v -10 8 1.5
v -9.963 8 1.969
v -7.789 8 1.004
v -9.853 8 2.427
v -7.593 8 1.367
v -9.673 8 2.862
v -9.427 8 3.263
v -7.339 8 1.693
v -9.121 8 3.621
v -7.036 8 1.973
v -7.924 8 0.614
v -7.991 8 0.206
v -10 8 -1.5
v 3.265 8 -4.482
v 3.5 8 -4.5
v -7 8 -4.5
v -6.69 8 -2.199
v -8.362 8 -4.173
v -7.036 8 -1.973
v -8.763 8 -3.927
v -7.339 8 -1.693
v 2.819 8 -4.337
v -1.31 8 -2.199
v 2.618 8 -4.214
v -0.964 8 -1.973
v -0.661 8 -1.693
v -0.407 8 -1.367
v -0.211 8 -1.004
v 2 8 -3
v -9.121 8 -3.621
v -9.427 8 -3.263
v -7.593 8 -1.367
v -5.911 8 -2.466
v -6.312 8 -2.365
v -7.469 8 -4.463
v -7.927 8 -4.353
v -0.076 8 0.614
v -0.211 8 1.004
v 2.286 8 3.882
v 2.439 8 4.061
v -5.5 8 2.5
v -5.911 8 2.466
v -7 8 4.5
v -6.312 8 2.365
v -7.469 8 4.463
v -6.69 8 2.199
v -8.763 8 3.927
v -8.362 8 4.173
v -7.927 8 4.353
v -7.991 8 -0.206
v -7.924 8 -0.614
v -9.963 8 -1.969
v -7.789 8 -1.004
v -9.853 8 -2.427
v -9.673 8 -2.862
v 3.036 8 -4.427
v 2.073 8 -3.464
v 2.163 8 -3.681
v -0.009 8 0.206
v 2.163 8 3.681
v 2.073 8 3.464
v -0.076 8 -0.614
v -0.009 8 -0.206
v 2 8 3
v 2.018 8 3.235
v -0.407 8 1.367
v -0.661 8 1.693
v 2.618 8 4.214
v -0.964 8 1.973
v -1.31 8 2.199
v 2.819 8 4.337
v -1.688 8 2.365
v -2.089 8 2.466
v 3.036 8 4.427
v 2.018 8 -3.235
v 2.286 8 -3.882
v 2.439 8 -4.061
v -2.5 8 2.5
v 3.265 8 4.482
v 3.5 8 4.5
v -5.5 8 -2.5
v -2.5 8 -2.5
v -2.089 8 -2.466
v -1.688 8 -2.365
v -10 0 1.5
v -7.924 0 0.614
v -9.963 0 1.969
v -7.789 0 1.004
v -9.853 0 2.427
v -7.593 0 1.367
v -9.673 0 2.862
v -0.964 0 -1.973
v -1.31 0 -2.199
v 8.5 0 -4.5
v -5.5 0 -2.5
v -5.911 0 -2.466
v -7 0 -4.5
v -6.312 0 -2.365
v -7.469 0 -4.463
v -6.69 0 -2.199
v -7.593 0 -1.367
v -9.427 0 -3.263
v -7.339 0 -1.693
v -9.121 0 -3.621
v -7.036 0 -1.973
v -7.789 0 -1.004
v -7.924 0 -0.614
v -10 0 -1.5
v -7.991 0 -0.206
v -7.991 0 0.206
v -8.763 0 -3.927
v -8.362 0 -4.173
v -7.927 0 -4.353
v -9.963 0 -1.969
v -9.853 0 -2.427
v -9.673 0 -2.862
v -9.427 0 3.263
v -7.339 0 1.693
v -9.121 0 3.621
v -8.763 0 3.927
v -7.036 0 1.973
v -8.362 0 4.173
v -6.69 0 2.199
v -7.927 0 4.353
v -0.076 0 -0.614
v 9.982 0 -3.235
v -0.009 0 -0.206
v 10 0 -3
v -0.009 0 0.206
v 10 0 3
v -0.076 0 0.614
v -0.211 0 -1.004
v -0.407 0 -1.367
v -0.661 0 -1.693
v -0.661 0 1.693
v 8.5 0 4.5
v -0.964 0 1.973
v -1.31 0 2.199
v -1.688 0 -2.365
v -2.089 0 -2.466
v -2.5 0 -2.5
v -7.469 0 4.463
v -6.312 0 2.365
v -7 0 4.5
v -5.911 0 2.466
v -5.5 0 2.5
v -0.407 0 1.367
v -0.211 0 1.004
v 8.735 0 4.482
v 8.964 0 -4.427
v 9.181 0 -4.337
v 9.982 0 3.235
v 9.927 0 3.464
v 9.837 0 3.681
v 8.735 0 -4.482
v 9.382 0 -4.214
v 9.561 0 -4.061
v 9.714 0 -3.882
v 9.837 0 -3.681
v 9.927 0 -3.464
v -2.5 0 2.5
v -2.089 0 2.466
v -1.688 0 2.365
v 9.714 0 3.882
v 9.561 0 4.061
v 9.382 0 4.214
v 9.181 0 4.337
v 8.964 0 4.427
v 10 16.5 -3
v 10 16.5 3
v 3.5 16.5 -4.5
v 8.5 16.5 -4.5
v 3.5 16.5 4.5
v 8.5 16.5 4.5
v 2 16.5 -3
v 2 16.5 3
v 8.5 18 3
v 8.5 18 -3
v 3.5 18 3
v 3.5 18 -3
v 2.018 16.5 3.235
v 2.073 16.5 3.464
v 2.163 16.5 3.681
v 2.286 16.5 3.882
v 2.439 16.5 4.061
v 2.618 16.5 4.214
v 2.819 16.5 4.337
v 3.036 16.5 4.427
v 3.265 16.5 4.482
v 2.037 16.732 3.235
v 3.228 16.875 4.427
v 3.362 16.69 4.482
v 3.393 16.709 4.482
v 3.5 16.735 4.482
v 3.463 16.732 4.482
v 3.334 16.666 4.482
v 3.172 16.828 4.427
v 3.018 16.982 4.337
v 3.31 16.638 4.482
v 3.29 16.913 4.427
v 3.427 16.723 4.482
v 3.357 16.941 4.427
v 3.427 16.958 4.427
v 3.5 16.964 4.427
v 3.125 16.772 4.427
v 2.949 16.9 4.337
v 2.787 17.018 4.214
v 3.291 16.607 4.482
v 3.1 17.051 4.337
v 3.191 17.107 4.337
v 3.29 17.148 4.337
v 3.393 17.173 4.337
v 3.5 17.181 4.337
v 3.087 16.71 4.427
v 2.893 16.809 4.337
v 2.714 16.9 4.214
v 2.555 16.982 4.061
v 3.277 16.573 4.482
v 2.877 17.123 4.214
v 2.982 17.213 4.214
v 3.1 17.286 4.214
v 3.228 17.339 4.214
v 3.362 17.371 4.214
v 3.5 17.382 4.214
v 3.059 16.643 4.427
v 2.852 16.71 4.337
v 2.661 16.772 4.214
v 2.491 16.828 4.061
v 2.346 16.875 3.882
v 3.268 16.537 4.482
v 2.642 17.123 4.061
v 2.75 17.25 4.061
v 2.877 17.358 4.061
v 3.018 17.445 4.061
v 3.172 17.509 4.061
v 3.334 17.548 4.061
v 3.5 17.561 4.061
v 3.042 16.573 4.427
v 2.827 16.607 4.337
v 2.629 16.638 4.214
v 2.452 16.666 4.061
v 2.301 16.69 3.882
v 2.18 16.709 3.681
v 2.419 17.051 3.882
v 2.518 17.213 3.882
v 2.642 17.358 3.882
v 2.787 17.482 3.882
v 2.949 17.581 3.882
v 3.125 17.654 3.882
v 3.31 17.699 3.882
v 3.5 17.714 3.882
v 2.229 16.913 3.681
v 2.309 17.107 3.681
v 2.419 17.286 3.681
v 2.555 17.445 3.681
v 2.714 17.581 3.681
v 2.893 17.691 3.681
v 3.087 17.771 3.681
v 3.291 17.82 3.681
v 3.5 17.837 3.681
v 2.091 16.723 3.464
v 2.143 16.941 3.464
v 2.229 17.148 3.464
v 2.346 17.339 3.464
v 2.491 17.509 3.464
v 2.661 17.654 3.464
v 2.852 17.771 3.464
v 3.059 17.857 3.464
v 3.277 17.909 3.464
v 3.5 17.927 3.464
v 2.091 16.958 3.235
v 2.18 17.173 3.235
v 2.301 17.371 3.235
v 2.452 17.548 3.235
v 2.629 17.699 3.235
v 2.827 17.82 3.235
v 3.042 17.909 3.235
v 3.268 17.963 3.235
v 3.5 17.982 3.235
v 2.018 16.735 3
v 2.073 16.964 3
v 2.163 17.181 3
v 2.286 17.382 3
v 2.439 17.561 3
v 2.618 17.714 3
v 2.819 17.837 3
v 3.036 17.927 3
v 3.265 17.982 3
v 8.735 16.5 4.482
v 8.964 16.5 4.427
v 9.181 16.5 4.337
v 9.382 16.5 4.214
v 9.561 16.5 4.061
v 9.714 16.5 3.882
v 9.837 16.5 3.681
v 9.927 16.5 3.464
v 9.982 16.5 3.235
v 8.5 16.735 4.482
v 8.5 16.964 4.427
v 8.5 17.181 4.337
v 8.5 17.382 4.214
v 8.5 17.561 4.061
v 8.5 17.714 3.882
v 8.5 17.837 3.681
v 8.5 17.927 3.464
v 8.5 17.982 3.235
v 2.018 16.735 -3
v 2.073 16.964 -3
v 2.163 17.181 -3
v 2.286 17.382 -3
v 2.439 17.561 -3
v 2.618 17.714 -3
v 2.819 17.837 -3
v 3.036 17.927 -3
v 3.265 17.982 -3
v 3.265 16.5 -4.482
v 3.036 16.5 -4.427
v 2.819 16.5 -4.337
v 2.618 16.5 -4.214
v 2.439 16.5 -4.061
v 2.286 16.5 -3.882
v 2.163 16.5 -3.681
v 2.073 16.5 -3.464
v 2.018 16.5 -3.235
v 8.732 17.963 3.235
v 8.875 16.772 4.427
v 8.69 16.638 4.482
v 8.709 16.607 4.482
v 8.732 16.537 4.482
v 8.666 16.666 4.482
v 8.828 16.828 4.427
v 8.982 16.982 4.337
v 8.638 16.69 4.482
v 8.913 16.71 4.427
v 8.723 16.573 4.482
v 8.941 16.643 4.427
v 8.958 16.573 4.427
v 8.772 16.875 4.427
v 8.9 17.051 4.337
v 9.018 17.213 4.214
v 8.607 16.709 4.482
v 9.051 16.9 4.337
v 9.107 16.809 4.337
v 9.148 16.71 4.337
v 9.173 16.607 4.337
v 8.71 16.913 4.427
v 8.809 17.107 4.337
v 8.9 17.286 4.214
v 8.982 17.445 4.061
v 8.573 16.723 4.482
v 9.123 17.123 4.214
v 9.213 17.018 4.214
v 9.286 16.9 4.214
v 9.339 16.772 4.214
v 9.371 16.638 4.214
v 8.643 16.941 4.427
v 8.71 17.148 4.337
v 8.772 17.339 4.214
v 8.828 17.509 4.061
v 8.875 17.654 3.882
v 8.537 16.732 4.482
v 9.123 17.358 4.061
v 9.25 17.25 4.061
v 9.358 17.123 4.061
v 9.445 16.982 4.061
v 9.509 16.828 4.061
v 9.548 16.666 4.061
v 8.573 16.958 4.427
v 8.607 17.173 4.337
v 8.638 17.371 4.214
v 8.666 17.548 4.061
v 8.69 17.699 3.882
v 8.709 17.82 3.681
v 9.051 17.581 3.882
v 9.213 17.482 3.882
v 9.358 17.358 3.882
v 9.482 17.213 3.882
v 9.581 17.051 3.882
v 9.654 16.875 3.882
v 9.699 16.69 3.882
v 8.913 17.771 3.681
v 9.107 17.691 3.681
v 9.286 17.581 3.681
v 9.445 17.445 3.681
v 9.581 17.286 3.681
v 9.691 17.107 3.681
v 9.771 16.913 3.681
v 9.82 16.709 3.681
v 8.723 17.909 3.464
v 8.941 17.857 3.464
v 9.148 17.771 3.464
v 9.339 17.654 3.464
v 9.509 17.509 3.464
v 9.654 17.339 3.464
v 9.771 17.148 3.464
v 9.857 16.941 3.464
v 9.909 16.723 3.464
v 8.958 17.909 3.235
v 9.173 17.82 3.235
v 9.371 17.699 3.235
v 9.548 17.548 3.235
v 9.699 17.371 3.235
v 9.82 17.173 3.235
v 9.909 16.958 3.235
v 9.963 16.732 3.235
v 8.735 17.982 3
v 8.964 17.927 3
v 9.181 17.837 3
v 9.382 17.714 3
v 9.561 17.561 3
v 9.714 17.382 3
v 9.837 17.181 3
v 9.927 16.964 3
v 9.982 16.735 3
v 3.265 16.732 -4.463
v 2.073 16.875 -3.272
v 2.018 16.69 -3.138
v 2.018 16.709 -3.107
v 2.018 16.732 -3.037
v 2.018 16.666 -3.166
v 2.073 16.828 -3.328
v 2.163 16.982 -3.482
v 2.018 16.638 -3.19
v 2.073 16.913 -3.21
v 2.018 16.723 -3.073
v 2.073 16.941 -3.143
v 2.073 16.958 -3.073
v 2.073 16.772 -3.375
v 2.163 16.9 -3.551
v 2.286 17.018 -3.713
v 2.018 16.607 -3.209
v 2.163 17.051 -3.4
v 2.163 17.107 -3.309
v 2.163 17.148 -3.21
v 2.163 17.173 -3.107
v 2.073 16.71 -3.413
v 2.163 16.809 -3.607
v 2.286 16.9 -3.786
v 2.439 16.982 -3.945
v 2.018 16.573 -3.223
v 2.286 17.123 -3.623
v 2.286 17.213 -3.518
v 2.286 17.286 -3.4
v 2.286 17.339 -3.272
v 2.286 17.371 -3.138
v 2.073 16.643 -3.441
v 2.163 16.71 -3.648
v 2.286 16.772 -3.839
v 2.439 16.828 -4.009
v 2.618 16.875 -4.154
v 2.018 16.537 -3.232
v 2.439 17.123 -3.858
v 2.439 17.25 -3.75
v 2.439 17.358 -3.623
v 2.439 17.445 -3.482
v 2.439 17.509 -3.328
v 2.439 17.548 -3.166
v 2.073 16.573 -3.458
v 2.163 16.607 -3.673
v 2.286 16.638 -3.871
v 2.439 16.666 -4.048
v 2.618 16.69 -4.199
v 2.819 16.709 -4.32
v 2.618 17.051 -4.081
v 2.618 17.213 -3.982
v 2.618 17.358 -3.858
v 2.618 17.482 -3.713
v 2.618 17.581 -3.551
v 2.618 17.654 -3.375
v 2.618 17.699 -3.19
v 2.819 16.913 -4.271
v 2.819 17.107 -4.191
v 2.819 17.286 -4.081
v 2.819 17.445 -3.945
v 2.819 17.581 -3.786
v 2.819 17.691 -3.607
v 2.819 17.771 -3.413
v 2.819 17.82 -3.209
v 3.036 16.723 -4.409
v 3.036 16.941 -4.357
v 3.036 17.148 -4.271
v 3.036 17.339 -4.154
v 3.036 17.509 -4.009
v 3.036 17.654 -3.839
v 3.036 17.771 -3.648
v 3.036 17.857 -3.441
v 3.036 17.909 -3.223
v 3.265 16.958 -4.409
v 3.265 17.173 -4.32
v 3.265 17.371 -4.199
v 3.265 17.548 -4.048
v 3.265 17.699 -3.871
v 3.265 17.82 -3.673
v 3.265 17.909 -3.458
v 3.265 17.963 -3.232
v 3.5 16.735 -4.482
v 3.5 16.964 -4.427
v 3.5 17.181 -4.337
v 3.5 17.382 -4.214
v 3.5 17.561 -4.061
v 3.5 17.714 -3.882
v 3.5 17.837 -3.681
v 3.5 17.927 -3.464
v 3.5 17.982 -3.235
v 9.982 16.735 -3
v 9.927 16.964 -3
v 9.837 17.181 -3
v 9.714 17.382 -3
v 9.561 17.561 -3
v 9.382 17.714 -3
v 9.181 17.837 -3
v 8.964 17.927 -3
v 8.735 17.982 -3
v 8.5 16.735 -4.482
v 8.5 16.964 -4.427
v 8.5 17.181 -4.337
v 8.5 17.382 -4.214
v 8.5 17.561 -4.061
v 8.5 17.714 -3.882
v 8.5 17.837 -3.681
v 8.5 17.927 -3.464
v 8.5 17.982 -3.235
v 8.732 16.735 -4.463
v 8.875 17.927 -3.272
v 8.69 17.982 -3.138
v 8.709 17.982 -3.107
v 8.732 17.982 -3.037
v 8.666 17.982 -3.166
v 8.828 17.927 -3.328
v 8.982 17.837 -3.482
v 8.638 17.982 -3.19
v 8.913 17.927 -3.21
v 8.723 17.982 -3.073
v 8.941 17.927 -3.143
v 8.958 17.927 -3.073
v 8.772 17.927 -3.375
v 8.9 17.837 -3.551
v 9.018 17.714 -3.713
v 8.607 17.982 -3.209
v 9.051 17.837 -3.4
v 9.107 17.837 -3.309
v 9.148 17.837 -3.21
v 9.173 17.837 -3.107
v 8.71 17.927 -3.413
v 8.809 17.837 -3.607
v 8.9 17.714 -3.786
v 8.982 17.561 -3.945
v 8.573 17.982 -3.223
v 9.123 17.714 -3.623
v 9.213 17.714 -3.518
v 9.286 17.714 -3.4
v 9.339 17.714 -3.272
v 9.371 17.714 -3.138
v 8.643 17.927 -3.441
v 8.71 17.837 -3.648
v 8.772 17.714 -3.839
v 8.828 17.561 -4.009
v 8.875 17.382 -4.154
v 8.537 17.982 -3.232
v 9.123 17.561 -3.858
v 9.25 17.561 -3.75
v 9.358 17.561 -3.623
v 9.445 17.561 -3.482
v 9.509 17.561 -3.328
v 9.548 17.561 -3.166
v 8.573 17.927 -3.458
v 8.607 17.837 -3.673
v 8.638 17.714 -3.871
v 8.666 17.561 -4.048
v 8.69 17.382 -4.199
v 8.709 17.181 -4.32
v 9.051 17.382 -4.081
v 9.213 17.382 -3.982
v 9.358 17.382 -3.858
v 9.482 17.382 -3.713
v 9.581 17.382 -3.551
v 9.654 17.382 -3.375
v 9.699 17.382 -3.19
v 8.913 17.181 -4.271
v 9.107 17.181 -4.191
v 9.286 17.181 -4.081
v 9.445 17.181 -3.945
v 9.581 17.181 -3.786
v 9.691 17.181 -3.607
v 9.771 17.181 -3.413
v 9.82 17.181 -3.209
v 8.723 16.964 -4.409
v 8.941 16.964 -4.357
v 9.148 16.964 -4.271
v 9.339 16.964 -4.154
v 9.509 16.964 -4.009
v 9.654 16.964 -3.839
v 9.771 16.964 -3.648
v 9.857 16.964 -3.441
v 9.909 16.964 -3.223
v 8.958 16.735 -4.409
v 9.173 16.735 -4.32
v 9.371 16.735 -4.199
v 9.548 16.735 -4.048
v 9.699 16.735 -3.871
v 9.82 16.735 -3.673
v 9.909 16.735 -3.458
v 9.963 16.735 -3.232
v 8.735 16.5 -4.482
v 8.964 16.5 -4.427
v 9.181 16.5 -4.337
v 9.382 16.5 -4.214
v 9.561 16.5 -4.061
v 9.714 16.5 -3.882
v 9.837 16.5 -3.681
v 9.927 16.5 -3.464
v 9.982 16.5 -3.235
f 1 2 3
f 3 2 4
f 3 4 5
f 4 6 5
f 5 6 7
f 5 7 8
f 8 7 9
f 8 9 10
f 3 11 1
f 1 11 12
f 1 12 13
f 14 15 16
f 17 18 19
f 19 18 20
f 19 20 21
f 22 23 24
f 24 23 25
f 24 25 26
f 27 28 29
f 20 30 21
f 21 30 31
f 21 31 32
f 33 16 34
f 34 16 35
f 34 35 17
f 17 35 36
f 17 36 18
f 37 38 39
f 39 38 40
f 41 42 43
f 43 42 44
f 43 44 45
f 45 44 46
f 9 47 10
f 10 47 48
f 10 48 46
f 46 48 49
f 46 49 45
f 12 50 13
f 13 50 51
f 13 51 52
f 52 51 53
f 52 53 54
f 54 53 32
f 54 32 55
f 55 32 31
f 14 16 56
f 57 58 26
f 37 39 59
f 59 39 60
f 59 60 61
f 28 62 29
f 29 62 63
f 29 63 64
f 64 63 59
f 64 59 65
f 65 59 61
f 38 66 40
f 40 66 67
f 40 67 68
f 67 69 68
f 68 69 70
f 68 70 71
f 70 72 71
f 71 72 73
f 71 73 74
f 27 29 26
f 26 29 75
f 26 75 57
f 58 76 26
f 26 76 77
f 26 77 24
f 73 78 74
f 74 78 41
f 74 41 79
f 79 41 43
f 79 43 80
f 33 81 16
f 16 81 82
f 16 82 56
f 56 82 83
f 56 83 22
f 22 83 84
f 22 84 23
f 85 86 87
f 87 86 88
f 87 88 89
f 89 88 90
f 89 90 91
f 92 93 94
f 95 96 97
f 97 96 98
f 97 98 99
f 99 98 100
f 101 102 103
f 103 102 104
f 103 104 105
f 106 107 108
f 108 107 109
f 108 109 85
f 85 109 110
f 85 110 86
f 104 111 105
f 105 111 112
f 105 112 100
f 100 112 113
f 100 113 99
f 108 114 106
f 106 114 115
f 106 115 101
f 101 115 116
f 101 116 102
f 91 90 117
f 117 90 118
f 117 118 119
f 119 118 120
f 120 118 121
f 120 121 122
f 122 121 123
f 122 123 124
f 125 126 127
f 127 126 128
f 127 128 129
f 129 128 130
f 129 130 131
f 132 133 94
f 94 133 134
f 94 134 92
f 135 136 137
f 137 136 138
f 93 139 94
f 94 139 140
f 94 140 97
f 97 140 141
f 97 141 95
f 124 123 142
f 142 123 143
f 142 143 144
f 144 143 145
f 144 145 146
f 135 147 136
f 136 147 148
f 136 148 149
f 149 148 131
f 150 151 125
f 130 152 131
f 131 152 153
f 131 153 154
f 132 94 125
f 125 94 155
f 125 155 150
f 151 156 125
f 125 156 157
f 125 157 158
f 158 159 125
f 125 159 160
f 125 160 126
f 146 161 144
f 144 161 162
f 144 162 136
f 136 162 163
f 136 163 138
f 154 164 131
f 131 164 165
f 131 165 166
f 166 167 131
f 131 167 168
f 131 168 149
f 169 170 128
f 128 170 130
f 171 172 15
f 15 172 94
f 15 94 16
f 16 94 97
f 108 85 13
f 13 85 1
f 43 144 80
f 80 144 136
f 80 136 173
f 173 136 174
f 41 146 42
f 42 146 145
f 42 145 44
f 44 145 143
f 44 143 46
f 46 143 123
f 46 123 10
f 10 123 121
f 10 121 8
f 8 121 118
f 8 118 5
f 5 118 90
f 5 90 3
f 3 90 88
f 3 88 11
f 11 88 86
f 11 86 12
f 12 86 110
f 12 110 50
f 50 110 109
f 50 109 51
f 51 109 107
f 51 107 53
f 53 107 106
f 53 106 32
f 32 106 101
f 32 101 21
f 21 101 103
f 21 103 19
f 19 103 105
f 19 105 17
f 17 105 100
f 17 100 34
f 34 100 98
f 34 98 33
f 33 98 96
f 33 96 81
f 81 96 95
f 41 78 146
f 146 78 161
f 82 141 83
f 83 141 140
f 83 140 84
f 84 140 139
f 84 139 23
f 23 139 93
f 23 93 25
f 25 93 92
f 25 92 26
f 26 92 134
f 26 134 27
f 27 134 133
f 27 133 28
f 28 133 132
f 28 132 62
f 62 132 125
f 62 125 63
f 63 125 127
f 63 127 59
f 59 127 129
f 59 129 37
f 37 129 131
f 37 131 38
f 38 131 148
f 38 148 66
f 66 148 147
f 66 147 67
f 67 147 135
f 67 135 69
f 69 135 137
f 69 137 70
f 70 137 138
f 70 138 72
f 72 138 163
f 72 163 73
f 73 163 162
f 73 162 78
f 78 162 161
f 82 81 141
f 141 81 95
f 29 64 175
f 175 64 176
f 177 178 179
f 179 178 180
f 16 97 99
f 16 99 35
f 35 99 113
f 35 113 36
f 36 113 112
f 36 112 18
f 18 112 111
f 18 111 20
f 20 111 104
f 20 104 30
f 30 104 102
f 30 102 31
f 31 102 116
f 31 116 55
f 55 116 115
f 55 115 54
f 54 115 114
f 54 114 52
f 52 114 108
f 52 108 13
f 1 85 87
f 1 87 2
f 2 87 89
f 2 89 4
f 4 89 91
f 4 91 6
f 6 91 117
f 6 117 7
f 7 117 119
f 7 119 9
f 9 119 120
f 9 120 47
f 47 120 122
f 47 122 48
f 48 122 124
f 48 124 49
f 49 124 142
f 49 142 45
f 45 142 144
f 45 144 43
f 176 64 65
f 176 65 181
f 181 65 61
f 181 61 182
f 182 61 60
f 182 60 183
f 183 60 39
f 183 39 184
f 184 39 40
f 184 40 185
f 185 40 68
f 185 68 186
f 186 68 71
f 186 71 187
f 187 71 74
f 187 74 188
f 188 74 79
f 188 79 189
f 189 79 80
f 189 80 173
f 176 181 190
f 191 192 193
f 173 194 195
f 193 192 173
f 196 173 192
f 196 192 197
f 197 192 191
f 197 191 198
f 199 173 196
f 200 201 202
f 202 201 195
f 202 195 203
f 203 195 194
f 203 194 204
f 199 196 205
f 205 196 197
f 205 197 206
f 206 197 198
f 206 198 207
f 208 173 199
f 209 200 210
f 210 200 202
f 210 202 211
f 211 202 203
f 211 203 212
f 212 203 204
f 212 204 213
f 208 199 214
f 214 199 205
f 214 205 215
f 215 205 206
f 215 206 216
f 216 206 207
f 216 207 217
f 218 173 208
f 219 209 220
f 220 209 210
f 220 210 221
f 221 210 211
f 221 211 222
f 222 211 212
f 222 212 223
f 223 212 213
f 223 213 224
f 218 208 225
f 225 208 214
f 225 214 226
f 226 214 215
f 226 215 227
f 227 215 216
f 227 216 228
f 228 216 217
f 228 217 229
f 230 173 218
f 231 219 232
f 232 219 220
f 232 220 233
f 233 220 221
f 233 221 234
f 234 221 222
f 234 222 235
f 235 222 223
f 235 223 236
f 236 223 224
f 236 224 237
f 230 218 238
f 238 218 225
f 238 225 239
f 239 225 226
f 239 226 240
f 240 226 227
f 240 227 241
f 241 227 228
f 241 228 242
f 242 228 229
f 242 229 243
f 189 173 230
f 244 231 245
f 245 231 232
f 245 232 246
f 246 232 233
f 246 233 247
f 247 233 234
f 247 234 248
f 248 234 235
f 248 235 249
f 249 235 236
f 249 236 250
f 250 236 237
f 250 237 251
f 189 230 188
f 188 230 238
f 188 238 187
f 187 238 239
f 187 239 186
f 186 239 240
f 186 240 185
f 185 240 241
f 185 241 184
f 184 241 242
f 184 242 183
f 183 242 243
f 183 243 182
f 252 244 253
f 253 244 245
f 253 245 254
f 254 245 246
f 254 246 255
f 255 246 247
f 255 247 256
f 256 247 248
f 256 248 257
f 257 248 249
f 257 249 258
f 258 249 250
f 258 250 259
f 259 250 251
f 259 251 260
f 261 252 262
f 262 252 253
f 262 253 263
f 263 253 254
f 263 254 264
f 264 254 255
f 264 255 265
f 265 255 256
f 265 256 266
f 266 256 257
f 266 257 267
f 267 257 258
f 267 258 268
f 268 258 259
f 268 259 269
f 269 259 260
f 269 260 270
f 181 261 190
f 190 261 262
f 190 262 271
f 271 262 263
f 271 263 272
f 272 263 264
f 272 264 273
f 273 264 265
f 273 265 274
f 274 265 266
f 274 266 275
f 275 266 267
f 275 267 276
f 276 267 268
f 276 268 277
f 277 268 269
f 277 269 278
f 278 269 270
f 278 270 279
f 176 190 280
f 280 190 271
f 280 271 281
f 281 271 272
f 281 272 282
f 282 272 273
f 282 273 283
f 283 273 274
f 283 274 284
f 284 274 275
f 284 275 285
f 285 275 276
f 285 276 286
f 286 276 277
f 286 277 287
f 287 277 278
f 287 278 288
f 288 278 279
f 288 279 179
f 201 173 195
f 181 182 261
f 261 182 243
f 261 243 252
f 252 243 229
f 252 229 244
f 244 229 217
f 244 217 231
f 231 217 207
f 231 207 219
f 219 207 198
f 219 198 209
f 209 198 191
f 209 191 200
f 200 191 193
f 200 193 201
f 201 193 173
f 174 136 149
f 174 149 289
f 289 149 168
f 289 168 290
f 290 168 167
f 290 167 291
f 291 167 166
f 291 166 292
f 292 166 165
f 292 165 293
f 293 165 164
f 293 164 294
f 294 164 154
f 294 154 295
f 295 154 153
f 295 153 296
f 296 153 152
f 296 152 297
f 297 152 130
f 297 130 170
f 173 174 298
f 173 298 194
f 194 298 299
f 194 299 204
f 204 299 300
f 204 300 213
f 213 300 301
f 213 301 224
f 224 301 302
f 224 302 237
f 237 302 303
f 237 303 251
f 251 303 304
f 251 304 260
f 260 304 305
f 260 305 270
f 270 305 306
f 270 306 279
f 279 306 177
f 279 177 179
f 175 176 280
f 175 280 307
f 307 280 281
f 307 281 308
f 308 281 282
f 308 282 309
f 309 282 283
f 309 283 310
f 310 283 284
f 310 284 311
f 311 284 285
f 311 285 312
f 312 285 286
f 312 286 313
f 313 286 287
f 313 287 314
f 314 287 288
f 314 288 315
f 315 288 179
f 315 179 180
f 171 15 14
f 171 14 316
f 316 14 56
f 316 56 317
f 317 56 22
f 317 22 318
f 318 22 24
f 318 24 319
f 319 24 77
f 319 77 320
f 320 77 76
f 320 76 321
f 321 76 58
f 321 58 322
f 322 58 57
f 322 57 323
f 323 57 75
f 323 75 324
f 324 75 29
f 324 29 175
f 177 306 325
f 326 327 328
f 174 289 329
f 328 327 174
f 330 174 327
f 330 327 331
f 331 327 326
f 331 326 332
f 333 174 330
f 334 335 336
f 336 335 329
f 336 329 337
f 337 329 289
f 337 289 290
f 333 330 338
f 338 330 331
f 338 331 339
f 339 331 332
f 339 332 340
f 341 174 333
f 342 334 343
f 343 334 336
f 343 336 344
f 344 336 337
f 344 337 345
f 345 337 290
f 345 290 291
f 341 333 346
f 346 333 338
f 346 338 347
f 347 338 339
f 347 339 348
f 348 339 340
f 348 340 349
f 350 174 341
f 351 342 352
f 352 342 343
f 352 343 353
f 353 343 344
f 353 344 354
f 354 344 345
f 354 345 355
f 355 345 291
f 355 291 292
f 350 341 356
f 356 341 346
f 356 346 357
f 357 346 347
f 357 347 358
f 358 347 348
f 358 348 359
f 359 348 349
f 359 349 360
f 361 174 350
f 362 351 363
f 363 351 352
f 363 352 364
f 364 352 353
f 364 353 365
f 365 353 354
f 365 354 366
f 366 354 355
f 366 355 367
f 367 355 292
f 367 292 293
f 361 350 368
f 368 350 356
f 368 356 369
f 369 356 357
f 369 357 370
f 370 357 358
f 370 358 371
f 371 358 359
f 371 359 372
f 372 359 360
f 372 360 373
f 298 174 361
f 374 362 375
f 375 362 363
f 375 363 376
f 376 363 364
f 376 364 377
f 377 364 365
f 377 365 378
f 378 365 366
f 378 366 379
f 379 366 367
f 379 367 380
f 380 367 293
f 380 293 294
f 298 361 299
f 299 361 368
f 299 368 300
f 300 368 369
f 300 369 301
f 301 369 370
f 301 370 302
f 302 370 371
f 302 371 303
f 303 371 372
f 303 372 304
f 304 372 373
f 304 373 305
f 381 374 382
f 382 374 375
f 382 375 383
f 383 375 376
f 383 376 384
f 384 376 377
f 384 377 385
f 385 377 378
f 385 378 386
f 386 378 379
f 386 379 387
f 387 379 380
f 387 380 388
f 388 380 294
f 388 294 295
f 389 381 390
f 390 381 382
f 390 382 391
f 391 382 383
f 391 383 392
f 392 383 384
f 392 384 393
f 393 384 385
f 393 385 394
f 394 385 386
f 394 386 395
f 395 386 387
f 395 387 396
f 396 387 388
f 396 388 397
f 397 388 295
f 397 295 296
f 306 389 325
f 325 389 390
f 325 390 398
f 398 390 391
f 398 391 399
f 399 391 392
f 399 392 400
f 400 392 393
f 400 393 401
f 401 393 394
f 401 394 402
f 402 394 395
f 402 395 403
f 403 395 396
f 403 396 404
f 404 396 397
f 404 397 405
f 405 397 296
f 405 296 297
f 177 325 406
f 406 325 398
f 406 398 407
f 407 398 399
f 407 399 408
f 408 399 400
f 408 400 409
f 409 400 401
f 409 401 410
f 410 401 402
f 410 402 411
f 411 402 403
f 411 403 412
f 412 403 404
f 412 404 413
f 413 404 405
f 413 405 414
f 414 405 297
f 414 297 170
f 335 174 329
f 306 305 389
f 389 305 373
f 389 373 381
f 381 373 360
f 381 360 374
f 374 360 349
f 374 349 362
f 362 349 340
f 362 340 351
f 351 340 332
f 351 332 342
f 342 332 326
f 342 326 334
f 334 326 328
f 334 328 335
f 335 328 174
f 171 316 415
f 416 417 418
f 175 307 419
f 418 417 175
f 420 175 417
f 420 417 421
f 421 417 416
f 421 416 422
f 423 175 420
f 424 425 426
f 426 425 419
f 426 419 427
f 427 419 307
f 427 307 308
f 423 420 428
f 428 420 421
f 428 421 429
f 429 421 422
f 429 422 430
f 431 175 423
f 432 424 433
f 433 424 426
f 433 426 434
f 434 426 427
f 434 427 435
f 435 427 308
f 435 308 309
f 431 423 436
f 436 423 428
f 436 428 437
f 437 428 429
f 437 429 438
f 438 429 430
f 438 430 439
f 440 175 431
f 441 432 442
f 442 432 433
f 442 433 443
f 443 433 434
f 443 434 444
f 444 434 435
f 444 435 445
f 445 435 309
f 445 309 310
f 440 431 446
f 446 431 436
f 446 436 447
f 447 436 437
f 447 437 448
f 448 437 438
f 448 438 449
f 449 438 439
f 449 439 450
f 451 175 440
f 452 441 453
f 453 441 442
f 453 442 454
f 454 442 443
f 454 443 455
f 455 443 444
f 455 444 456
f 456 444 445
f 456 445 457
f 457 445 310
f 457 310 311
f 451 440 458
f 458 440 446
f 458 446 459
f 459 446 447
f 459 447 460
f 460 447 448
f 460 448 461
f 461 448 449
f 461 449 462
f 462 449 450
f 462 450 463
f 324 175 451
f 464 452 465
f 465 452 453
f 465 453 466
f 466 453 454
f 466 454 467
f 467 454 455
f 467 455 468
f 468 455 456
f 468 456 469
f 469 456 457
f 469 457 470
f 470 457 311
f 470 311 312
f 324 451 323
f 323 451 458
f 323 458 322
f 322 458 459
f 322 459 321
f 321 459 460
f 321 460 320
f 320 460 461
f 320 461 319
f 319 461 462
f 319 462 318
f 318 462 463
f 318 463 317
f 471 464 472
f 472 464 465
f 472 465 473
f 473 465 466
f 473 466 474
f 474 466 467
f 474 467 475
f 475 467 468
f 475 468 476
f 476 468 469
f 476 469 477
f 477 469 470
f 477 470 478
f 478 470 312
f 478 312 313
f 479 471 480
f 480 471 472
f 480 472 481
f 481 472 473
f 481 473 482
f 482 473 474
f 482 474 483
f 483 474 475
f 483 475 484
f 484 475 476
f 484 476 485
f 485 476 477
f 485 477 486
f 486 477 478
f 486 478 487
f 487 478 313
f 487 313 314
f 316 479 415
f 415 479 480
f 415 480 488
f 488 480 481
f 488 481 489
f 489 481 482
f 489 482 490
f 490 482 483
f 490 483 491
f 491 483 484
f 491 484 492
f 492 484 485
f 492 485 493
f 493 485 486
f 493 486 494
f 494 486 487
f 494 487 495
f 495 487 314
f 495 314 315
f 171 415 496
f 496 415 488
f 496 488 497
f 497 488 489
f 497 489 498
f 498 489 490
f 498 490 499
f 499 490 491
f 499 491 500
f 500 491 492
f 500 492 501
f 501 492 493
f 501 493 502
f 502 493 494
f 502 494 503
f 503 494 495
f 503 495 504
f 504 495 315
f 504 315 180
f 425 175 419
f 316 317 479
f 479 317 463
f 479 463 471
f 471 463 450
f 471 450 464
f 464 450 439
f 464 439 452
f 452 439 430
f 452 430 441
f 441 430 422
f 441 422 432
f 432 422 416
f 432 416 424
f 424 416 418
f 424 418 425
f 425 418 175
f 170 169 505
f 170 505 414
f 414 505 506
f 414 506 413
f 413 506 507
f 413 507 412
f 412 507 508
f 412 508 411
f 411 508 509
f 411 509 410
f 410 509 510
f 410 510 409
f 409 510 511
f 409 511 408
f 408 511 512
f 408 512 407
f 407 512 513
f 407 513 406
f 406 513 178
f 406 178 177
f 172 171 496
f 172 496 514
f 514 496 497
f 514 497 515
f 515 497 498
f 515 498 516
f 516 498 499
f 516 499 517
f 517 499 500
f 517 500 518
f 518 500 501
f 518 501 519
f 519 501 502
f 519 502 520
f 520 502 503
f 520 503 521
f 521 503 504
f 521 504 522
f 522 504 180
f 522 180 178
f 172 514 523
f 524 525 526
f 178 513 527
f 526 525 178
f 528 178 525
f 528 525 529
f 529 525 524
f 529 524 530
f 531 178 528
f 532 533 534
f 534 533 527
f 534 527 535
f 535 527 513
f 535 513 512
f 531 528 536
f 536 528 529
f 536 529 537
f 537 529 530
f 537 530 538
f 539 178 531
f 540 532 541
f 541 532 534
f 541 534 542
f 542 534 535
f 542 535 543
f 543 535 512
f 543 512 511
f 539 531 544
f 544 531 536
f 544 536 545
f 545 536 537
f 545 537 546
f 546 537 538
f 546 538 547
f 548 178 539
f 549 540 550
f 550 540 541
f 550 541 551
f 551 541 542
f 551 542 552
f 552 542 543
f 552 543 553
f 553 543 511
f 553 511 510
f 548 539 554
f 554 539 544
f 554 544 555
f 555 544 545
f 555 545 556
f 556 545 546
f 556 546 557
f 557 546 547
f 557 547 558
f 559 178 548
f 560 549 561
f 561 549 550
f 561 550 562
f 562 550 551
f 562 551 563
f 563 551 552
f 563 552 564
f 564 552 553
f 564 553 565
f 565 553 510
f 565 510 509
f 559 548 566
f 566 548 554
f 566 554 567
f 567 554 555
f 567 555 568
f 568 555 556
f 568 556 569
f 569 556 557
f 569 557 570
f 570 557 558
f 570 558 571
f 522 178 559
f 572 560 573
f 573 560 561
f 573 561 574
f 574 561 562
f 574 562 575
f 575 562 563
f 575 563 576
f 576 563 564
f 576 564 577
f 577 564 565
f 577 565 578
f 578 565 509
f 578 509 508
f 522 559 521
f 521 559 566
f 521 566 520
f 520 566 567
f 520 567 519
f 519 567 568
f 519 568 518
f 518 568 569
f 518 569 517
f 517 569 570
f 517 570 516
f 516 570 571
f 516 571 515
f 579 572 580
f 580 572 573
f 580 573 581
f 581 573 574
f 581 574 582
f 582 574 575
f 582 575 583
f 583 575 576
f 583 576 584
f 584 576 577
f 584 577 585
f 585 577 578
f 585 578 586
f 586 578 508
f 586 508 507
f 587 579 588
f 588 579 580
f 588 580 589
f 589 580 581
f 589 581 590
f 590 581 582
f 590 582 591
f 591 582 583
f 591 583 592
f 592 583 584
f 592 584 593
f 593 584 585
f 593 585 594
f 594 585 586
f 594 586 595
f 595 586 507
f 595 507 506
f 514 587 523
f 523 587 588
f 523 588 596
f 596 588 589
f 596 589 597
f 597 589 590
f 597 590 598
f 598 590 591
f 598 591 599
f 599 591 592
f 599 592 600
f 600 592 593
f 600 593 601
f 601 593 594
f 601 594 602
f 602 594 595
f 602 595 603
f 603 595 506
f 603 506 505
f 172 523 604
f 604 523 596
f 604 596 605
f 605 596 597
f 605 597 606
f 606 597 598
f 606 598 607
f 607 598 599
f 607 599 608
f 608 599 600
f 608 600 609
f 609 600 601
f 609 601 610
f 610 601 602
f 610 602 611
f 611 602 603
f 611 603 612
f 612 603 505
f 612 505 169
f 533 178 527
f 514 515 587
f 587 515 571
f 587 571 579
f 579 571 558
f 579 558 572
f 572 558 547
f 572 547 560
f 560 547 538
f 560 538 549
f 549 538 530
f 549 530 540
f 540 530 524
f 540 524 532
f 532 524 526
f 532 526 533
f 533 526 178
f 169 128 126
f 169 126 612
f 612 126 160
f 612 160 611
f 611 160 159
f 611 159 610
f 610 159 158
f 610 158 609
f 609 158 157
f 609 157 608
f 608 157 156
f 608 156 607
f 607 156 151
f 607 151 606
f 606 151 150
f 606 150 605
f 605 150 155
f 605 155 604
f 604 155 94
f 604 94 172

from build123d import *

# Parameters (mm, degrees)
SKETCH1_W           = 20
SKETCH1_H           = 9
BOSS_EXTRUDE1_DEPTH = 8
SKETCH2_W           = 8
SKETCH2_H           = 9
BOSS_EXTRUDE2_DEPTH = 10
FILLET1_R           = 3
FILLET3_R           = 1.5


with BuildPart() as part:
    # Sketch1 → Boss-Extrude1 (new body)
    with BuildSketch(Plane(origin=(0, 0, 0), x_dir=(1, 0, 0), z_dir=(0, 1, 0))):
        Rectangle(SKETCH1_W, SKETCH1_H)
        with BuildLine():
            Line((-5.5, 2.5), (-2.5, 2.5))
            ThreePointArc((-2.5, 2.5), (0, 0), (-2.5, -2.5))
            Line((-2.5, -2.5), (-5.5, -2.5))
            ThreePointArc((-5.5, -2.5), (-8, 0), (-5.5, 2.5))
        make_face(mode=Mode.SUBTRACT)
    extrude(amount=BOSS_EXTRUDE1_DEPTH)

    # Sketch2 → Boss-Extrude2 (add)
    with BuildSketch(Plane(origin=(0, 8, 0), x_dir=(1, 0, 0), z_dir=(0, 1, 0))):
        with Locations((6, 0)):
            Rectangle(SKETCH2_W, SKETCH2_H)
    extrude(amount=BOSS_EXTRUDE2_DEPTH)

    # Fillet1
    fillet1_edges = [part.edges().sort_by_distance(p)[0] for p in [
        (-10, 4, 4.5),
        (-10, 4, -4.5),
    ]]
    fillet(fillet1_edges, radius=FILLET1_R)

    # Fillet3
    fillet3_edges = [part.edges().sort_by_distance(p)[0] for p in [
        (2, 13, -4.5),
        (2, 13, 4.5),
        (10, 18, 0),
        (6, 18, -4.5),
        (2, 18, 0),
        (6, 18, 4.5),
        (10, 9, 4.5),
        (10, 9, -4.5),
    ]]
    fillet(fillet3_edges, radius=FILLET3_R)


solid = part.part
